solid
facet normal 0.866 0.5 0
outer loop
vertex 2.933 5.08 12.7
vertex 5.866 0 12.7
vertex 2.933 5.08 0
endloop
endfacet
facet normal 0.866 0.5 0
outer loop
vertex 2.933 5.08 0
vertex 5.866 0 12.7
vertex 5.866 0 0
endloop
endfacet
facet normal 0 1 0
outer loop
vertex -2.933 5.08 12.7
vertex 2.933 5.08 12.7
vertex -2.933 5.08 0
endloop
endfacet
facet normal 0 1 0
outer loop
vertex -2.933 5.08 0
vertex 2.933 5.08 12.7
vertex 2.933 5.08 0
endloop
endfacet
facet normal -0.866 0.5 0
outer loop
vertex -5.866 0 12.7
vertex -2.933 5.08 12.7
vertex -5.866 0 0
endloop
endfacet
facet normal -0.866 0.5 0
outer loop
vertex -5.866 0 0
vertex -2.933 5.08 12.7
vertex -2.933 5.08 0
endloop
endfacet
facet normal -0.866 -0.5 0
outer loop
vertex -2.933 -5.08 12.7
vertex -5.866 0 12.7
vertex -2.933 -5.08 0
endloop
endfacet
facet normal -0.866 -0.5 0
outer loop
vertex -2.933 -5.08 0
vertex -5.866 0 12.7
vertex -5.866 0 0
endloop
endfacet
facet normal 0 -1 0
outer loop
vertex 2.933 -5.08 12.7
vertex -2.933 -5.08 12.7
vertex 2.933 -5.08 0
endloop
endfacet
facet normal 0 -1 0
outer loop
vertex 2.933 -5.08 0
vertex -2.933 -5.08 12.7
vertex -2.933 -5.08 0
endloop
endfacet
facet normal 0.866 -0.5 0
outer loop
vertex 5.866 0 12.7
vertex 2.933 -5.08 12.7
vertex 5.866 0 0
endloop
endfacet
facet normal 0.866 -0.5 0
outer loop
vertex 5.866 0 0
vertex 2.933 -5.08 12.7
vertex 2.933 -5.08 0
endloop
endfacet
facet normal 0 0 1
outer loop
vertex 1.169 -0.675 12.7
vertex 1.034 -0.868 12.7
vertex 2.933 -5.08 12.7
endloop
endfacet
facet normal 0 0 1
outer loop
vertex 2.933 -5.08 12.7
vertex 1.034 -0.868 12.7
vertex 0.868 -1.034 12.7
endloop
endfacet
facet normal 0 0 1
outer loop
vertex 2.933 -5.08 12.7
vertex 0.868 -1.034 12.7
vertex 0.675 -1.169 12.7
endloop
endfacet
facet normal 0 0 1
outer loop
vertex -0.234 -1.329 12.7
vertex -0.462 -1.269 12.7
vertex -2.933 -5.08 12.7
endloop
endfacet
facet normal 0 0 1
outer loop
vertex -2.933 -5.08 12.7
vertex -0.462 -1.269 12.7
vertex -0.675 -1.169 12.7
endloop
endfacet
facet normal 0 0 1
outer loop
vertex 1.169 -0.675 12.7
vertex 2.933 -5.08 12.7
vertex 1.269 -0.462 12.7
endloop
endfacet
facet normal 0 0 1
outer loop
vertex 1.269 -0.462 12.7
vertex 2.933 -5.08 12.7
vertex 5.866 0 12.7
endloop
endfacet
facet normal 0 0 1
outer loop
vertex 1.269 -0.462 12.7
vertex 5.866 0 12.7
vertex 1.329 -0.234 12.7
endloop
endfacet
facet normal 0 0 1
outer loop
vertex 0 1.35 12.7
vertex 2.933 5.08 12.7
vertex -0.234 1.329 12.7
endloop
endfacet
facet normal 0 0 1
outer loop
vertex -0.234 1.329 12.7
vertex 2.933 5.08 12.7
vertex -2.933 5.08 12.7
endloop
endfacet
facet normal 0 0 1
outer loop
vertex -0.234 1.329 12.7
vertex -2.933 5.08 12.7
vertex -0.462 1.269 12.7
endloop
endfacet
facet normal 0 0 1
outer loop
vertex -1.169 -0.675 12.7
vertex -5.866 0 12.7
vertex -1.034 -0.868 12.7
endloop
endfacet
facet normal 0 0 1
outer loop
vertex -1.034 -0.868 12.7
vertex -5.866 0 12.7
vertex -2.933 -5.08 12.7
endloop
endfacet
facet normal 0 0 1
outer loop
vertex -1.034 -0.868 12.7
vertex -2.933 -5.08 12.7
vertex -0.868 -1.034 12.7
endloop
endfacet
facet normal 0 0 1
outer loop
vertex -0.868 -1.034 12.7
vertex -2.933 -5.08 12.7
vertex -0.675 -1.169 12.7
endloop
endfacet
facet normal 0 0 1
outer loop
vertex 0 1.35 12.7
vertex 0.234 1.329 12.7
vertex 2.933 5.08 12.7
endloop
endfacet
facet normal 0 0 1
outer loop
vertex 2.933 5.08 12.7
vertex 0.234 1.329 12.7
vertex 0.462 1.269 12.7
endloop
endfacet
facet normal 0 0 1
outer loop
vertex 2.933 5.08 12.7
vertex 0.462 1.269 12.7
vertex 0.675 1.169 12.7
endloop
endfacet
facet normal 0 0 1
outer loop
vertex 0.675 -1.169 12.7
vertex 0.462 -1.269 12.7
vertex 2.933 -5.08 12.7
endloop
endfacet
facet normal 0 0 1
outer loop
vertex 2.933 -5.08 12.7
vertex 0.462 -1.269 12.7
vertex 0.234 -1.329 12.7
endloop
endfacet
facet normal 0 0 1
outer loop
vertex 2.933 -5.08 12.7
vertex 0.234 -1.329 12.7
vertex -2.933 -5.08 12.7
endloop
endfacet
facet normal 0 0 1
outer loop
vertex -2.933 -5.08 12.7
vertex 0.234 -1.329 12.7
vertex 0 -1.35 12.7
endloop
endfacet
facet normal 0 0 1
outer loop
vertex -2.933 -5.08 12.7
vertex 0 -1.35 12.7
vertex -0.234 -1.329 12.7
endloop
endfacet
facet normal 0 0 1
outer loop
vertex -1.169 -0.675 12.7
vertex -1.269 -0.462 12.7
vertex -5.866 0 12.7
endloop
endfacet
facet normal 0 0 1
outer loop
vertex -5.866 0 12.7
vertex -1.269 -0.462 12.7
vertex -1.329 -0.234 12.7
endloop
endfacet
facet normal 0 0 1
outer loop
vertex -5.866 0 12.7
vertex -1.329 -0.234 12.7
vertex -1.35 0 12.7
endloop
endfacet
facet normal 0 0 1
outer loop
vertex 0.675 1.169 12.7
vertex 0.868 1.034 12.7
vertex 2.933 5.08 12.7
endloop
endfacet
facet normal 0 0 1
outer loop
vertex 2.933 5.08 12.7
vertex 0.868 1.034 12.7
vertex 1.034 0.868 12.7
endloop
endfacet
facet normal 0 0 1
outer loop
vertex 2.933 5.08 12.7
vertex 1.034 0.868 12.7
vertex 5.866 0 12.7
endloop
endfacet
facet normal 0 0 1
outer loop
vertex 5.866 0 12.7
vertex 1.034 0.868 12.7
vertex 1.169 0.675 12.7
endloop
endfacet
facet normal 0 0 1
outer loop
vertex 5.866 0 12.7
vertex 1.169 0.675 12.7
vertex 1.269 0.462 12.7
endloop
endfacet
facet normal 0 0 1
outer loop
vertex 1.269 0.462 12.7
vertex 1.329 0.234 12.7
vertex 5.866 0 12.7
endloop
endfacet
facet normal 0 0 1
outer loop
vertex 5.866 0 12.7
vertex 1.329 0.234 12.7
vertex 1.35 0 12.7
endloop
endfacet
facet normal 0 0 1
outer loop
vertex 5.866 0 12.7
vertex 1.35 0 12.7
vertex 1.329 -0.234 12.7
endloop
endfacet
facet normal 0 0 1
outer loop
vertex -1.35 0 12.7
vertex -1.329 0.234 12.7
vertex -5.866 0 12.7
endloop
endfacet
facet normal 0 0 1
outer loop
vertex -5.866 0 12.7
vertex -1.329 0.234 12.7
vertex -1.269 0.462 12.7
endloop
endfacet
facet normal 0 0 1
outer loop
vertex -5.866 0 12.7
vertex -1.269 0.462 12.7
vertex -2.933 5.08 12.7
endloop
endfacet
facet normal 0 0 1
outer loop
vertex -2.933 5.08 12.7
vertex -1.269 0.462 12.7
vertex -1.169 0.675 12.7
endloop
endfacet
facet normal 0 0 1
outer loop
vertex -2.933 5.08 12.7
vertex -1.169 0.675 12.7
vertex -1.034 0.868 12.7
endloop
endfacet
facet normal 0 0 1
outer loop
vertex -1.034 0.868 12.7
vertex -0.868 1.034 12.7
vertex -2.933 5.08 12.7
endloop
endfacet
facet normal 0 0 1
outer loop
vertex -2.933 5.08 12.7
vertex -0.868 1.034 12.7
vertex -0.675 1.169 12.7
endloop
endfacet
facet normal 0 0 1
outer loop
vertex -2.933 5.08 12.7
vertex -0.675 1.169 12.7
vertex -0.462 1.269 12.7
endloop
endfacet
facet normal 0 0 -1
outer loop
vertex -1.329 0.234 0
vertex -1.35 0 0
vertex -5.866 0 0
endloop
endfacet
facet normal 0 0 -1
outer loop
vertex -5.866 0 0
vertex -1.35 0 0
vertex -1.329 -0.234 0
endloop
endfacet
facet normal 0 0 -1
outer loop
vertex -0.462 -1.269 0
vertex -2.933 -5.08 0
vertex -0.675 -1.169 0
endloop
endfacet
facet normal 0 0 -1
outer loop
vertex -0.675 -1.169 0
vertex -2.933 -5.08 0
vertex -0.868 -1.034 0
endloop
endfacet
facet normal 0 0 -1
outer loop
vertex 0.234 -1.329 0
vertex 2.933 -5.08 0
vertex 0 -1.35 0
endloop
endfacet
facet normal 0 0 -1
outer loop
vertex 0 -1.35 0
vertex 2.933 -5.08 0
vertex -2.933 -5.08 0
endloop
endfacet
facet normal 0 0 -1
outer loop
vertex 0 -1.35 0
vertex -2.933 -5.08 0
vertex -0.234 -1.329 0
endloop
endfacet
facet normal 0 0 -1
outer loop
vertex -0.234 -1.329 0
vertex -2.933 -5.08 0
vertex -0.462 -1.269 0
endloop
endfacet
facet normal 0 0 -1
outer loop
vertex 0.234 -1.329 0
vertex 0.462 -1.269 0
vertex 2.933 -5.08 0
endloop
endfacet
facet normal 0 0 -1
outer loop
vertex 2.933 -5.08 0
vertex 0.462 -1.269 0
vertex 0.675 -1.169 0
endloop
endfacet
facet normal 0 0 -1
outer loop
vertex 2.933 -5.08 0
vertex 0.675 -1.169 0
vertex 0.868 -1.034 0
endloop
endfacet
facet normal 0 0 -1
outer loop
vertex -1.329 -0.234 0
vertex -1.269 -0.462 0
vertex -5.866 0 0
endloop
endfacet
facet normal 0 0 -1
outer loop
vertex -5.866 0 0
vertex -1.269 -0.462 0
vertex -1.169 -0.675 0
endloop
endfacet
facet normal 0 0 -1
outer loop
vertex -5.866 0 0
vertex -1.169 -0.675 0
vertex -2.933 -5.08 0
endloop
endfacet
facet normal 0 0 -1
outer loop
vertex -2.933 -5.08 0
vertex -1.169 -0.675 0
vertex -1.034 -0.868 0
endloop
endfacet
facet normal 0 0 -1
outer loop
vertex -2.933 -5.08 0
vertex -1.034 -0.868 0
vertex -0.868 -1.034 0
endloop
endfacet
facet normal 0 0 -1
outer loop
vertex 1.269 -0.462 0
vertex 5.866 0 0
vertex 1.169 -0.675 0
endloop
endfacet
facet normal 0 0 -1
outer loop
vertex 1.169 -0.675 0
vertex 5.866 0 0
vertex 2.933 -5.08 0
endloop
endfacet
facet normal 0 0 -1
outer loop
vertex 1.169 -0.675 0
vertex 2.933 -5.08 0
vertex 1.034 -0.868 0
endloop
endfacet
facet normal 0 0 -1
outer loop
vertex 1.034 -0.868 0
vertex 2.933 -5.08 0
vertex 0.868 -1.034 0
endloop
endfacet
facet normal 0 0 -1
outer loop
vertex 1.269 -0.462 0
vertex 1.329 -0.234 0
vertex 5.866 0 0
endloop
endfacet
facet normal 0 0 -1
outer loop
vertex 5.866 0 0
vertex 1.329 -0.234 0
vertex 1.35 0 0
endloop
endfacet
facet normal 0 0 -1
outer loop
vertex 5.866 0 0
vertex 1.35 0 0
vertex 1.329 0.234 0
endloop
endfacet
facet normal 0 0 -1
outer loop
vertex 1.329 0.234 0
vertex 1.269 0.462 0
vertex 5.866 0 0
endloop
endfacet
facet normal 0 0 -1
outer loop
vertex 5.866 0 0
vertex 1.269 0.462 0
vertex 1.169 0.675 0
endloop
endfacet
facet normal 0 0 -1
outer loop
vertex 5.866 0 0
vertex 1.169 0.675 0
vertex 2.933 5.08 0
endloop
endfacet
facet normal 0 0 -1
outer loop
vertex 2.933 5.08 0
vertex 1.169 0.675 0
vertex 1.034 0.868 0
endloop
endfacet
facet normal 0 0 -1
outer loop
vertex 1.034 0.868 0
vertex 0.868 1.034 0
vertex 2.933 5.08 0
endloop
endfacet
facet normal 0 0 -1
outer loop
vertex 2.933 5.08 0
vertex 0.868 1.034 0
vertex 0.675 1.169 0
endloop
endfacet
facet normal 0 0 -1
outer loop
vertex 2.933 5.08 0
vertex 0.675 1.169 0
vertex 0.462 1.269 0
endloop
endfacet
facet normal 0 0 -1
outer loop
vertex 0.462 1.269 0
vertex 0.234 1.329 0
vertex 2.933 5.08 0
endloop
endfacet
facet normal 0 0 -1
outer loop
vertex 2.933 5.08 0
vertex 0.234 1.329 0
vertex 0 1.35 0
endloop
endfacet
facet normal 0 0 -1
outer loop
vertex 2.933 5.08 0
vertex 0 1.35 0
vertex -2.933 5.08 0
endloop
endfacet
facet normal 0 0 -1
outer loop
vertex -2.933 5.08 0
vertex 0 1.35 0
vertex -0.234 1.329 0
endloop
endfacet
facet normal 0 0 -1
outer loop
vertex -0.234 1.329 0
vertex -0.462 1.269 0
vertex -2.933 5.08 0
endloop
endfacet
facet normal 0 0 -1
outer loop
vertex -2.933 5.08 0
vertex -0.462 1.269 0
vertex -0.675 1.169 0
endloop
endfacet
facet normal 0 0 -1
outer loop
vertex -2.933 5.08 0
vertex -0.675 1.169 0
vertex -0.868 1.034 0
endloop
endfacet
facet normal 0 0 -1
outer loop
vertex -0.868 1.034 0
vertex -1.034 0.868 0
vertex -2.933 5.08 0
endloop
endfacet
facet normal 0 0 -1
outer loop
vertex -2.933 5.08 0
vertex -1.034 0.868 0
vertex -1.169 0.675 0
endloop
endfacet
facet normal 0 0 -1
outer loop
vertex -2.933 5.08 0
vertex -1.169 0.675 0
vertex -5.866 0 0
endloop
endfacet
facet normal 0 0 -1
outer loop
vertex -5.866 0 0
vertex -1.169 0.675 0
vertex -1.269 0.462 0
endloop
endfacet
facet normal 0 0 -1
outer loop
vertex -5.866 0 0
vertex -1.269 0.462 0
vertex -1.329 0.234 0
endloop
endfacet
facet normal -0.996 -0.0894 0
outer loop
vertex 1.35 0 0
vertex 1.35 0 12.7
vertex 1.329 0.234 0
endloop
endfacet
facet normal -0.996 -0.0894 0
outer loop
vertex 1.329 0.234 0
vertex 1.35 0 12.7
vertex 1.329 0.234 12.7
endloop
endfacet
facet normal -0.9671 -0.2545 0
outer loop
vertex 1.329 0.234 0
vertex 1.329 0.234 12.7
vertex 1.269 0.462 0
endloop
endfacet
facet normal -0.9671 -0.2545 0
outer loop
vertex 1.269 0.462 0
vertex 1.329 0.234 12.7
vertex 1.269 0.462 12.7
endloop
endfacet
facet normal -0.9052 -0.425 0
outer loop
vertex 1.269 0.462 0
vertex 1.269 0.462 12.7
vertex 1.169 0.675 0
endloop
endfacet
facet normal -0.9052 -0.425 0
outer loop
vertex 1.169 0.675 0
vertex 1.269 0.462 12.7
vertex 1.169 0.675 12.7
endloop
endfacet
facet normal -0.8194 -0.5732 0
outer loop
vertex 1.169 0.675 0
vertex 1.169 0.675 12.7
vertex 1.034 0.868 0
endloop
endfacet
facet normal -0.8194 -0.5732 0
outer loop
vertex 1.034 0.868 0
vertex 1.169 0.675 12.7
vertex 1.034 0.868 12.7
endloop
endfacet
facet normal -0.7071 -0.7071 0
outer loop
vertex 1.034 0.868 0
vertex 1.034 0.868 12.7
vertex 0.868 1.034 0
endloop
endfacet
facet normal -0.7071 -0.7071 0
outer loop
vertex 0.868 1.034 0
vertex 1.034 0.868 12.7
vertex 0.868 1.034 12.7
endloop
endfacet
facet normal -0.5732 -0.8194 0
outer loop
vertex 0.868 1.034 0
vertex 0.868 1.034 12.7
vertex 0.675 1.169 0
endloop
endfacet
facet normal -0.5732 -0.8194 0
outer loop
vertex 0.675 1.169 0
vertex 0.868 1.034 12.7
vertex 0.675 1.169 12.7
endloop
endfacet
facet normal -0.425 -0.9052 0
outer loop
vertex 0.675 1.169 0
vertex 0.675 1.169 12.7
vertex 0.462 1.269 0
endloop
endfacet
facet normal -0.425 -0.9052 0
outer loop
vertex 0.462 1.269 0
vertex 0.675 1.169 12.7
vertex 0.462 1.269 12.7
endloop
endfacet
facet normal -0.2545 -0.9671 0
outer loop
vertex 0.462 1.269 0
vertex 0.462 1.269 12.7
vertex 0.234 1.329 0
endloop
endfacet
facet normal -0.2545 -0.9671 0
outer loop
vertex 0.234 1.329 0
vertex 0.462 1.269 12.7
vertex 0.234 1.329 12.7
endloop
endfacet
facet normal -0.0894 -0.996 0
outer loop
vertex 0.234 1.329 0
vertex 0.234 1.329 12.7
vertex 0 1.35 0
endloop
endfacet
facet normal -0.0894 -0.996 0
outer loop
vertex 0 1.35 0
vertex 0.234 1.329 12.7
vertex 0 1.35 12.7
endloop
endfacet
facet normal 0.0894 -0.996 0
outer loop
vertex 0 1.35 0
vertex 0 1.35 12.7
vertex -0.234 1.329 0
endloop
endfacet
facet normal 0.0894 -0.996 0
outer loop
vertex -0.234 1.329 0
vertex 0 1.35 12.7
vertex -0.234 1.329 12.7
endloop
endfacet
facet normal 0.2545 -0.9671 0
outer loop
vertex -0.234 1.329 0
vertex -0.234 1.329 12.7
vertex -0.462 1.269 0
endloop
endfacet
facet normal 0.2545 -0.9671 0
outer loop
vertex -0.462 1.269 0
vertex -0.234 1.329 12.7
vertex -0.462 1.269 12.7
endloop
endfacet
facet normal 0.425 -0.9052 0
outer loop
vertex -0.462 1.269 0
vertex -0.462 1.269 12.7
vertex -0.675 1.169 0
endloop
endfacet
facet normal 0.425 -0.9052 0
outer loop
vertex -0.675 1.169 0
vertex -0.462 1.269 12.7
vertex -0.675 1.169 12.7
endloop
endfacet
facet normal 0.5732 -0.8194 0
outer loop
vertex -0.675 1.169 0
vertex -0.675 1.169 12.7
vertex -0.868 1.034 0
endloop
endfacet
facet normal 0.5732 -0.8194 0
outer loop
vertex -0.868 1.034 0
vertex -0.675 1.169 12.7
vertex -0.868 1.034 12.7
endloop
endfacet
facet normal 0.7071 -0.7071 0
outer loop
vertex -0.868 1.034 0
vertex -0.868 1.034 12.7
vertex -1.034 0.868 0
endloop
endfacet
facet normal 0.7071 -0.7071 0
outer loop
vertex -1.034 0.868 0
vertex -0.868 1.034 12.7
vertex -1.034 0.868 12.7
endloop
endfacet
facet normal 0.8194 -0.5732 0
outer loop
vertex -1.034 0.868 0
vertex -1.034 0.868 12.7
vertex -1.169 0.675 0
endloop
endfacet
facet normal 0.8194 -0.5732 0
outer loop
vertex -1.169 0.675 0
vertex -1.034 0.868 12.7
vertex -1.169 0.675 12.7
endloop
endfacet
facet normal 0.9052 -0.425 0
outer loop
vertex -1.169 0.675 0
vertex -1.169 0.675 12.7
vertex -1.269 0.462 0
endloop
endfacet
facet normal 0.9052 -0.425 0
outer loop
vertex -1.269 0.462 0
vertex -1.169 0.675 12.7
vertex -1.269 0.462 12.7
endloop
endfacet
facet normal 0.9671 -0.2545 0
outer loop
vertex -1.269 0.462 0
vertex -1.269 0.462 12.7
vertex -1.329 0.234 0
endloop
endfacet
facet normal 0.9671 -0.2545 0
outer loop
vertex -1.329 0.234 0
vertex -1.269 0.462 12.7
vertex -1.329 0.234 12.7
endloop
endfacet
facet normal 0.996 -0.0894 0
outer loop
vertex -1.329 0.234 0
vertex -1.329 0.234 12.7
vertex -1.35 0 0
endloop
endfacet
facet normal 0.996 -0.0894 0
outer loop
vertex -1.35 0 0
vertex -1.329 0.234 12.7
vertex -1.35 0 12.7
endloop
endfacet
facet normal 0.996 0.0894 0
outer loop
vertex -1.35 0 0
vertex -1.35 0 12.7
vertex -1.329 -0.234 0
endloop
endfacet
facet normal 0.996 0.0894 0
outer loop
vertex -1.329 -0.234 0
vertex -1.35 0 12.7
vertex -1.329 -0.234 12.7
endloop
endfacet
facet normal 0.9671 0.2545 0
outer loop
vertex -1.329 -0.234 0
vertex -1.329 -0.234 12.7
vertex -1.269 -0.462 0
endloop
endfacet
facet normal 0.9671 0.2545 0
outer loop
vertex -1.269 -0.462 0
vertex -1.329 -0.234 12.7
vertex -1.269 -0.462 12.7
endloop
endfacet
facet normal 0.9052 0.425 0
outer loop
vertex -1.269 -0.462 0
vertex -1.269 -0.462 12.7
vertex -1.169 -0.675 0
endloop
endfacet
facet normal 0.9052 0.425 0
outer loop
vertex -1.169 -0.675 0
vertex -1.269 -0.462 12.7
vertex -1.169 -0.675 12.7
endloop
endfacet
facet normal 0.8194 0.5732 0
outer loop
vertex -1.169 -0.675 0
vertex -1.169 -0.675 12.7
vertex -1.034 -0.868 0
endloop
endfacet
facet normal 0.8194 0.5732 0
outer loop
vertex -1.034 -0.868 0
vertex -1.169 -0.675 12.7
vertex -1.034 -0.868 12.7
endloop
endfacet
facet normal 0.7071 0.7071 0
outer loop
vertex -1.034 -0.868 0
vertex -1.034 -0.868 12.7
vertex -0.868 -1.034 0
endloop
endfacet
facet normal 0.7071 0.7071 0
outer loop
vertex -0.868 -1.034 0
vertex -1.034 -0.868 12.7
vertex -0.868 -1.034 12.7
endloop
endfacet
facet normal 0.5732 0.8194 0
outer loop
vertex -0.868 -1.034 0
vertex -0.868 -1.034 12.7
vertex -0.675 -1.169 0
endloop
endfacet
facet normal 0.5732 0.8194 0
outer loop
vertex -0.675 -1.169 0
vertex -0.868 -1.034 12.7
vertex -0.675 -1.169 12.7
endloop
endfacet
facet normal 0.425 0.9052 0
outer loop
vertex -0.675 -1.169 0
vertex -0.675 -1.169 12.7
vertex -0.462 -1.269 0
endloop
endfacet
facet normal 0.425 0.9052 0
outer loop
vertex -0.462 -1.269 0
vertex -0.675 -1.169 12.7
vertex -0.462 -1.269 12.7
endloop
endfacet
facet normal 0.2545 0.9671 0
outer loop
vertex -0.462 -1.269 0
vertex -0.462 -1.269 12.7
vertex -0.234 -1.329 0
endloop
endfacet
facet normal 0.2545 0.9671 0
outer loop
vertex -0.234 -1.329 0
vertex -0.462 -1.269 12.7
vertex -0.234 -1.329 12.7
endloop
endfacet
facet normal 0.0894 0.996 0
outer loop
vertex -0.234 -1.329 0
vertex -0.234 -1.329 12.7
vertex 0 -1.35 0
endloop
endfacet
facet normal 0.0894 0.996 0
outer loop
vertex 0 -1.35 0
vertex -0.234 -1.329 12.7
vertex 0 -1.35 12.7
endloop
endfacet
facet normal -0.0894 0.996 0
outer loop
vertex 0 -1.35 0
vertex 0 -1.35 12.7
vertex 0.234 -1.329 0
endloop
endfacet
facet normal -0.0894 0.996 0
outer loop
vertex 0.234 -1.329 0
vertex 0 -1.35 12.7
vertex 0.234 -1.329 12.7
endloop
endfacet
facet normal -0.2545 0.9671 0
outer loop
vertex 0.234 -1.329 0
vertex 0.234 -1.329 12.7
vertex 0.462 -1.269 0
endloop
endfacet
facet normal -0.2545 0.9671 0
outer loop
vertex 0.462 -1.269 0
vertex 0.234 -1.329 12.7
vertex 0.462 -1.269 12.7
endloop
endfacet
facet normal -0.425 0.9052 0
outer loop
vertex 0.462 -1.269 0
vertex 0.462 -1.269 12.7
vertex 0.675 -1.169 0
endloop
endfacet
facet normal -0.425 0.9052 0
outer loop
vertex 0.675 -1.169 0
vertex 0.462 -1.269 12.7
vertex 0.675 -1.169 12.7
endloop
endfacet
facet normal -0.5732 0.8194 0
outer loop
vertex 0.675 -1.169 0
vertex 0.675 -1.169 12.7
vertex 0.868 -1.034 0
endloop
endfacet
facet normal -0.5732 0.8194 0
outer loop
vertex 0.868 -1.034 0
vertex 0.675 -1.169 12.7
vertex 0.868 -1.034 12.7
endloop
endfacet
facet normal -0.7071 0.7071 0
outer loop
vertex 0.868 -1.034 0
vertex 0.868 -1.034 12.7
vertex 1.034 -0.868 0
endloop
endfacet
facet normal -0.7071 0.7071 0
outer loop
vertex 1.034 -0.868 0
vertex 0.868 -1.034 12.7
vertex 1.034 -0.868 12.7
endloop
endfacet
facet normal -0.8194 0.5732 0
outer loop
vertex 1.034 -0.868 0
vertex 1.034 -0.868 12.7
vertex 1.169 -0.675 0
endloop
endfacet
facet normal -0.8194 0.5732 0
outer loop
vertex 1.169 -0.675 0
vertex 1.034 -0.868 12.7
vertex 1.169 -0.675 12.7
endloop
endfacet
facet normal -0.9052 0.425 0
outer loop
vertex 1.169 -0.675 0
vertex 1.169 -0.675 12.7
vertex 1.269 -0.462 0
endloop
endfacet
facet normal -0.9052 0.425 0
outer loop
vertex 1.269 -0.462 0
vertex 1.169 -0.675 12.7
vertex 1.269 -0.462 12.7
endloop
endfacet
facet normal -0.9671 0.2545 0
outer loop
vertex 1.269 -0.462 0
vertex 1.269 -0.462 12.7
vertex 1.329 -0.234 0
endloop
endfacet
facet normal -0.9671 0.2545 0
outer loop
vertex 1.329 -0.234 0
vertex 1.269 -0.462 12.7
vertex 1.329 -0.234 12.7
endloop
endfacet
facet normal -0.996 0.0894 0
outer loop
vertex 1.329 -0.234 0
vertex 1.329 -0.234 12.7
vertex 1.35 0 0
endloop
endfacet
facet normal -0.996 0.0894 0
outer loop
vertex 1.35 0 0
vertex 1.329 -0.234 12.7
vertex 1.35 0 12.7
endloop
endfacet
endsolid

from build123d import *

# Parameters (mm, degrees)
SKETCH1_R             = 5.08
BOSS_EXTRUDE1_DEPTH   = 12.7
M3X0_5_TAPPED_HOLE1_D = 2.7


with BuildPart() as part:
    # Sketch1 → Boss-Extrude1 (new body)
    with BuildSketch(Plane.XY):
        Circle(SKETCH1_R)
        with BuildLine():
            Line((-2.932939367, 5.08), (-4.399409037, 2.540000024))
            ThreePointArc((-4.399409037, 2.540000024), (-2.539999988, 4.399409058), (0, 5.08))
            Line((0, 5.08), (-2.932939367, 5.08))
        make_face()
        with BuildLine():
            Line((2.932939367, 5.08), (0, 5.08))
            ThreePointArc((0, 5.08), (2.539999994, 4.399409055), (4.399409045, 2.540000012))
            Line((4.399409045, 2.540000012), (2.932939367, 5.08))
        make_face()
        with BuildLine():
            ThreePointArc((5.08, 0), (4.906903196, -1.314800756), (4.399409045, -2.540000012))
            Line((4.399409045, -2.540000012), (5.865878735, 0))
            Line((5.865878735, 0), (4.399409045, 2.540000012))
            ThreePointArc((4.399409045, 2.540000012), (4.906903196, 1.314800756), (5.08, 0))
        make_face()
        with BuildLine():
            ThreePointArc((4.399409045, -2.540000012), (2.539999994, -4.399409055), (0, -5.08))
            Line((0, -5.08), (2.932939367, -5.08))
            Line((2.932939367, -5.08), (4.399409045, -2.540000012))
        make_face()
        with BuildLine():
            Line((-4.399409037, 2.540000024), (-5.865878735, 0))
            Line((-5.865878735, 0), (-4.399409045, -2.540000012))
            ThreePointArc((-4.399409045, -2.540000012), (-5.08, 7e-09), (-4.399409037, 2.540000024))
        make_face()
        with BuildLine():
            ThreePointArc((0, -5.08), (-2.539999994, -4.399409055), (-4.399409045, -2.540000012))
            Line((-4.399409045, -2.540000012), (-2.932939367, -5.08))
            Line((-2.932939367, -5.08), (0, -5.08))
        make_face()
    extrude(amount=BOSS_EXTRUDE1_DEPTH)

    # M3x0.5 Tapped Hole1 (through all)
    with Locations(Plane.XY.offset(12.7)):
        with Locations((0, 0)):
            Hole(M3X0_5_TAPPED_HOLE1_D / 2)


solid = part.part
